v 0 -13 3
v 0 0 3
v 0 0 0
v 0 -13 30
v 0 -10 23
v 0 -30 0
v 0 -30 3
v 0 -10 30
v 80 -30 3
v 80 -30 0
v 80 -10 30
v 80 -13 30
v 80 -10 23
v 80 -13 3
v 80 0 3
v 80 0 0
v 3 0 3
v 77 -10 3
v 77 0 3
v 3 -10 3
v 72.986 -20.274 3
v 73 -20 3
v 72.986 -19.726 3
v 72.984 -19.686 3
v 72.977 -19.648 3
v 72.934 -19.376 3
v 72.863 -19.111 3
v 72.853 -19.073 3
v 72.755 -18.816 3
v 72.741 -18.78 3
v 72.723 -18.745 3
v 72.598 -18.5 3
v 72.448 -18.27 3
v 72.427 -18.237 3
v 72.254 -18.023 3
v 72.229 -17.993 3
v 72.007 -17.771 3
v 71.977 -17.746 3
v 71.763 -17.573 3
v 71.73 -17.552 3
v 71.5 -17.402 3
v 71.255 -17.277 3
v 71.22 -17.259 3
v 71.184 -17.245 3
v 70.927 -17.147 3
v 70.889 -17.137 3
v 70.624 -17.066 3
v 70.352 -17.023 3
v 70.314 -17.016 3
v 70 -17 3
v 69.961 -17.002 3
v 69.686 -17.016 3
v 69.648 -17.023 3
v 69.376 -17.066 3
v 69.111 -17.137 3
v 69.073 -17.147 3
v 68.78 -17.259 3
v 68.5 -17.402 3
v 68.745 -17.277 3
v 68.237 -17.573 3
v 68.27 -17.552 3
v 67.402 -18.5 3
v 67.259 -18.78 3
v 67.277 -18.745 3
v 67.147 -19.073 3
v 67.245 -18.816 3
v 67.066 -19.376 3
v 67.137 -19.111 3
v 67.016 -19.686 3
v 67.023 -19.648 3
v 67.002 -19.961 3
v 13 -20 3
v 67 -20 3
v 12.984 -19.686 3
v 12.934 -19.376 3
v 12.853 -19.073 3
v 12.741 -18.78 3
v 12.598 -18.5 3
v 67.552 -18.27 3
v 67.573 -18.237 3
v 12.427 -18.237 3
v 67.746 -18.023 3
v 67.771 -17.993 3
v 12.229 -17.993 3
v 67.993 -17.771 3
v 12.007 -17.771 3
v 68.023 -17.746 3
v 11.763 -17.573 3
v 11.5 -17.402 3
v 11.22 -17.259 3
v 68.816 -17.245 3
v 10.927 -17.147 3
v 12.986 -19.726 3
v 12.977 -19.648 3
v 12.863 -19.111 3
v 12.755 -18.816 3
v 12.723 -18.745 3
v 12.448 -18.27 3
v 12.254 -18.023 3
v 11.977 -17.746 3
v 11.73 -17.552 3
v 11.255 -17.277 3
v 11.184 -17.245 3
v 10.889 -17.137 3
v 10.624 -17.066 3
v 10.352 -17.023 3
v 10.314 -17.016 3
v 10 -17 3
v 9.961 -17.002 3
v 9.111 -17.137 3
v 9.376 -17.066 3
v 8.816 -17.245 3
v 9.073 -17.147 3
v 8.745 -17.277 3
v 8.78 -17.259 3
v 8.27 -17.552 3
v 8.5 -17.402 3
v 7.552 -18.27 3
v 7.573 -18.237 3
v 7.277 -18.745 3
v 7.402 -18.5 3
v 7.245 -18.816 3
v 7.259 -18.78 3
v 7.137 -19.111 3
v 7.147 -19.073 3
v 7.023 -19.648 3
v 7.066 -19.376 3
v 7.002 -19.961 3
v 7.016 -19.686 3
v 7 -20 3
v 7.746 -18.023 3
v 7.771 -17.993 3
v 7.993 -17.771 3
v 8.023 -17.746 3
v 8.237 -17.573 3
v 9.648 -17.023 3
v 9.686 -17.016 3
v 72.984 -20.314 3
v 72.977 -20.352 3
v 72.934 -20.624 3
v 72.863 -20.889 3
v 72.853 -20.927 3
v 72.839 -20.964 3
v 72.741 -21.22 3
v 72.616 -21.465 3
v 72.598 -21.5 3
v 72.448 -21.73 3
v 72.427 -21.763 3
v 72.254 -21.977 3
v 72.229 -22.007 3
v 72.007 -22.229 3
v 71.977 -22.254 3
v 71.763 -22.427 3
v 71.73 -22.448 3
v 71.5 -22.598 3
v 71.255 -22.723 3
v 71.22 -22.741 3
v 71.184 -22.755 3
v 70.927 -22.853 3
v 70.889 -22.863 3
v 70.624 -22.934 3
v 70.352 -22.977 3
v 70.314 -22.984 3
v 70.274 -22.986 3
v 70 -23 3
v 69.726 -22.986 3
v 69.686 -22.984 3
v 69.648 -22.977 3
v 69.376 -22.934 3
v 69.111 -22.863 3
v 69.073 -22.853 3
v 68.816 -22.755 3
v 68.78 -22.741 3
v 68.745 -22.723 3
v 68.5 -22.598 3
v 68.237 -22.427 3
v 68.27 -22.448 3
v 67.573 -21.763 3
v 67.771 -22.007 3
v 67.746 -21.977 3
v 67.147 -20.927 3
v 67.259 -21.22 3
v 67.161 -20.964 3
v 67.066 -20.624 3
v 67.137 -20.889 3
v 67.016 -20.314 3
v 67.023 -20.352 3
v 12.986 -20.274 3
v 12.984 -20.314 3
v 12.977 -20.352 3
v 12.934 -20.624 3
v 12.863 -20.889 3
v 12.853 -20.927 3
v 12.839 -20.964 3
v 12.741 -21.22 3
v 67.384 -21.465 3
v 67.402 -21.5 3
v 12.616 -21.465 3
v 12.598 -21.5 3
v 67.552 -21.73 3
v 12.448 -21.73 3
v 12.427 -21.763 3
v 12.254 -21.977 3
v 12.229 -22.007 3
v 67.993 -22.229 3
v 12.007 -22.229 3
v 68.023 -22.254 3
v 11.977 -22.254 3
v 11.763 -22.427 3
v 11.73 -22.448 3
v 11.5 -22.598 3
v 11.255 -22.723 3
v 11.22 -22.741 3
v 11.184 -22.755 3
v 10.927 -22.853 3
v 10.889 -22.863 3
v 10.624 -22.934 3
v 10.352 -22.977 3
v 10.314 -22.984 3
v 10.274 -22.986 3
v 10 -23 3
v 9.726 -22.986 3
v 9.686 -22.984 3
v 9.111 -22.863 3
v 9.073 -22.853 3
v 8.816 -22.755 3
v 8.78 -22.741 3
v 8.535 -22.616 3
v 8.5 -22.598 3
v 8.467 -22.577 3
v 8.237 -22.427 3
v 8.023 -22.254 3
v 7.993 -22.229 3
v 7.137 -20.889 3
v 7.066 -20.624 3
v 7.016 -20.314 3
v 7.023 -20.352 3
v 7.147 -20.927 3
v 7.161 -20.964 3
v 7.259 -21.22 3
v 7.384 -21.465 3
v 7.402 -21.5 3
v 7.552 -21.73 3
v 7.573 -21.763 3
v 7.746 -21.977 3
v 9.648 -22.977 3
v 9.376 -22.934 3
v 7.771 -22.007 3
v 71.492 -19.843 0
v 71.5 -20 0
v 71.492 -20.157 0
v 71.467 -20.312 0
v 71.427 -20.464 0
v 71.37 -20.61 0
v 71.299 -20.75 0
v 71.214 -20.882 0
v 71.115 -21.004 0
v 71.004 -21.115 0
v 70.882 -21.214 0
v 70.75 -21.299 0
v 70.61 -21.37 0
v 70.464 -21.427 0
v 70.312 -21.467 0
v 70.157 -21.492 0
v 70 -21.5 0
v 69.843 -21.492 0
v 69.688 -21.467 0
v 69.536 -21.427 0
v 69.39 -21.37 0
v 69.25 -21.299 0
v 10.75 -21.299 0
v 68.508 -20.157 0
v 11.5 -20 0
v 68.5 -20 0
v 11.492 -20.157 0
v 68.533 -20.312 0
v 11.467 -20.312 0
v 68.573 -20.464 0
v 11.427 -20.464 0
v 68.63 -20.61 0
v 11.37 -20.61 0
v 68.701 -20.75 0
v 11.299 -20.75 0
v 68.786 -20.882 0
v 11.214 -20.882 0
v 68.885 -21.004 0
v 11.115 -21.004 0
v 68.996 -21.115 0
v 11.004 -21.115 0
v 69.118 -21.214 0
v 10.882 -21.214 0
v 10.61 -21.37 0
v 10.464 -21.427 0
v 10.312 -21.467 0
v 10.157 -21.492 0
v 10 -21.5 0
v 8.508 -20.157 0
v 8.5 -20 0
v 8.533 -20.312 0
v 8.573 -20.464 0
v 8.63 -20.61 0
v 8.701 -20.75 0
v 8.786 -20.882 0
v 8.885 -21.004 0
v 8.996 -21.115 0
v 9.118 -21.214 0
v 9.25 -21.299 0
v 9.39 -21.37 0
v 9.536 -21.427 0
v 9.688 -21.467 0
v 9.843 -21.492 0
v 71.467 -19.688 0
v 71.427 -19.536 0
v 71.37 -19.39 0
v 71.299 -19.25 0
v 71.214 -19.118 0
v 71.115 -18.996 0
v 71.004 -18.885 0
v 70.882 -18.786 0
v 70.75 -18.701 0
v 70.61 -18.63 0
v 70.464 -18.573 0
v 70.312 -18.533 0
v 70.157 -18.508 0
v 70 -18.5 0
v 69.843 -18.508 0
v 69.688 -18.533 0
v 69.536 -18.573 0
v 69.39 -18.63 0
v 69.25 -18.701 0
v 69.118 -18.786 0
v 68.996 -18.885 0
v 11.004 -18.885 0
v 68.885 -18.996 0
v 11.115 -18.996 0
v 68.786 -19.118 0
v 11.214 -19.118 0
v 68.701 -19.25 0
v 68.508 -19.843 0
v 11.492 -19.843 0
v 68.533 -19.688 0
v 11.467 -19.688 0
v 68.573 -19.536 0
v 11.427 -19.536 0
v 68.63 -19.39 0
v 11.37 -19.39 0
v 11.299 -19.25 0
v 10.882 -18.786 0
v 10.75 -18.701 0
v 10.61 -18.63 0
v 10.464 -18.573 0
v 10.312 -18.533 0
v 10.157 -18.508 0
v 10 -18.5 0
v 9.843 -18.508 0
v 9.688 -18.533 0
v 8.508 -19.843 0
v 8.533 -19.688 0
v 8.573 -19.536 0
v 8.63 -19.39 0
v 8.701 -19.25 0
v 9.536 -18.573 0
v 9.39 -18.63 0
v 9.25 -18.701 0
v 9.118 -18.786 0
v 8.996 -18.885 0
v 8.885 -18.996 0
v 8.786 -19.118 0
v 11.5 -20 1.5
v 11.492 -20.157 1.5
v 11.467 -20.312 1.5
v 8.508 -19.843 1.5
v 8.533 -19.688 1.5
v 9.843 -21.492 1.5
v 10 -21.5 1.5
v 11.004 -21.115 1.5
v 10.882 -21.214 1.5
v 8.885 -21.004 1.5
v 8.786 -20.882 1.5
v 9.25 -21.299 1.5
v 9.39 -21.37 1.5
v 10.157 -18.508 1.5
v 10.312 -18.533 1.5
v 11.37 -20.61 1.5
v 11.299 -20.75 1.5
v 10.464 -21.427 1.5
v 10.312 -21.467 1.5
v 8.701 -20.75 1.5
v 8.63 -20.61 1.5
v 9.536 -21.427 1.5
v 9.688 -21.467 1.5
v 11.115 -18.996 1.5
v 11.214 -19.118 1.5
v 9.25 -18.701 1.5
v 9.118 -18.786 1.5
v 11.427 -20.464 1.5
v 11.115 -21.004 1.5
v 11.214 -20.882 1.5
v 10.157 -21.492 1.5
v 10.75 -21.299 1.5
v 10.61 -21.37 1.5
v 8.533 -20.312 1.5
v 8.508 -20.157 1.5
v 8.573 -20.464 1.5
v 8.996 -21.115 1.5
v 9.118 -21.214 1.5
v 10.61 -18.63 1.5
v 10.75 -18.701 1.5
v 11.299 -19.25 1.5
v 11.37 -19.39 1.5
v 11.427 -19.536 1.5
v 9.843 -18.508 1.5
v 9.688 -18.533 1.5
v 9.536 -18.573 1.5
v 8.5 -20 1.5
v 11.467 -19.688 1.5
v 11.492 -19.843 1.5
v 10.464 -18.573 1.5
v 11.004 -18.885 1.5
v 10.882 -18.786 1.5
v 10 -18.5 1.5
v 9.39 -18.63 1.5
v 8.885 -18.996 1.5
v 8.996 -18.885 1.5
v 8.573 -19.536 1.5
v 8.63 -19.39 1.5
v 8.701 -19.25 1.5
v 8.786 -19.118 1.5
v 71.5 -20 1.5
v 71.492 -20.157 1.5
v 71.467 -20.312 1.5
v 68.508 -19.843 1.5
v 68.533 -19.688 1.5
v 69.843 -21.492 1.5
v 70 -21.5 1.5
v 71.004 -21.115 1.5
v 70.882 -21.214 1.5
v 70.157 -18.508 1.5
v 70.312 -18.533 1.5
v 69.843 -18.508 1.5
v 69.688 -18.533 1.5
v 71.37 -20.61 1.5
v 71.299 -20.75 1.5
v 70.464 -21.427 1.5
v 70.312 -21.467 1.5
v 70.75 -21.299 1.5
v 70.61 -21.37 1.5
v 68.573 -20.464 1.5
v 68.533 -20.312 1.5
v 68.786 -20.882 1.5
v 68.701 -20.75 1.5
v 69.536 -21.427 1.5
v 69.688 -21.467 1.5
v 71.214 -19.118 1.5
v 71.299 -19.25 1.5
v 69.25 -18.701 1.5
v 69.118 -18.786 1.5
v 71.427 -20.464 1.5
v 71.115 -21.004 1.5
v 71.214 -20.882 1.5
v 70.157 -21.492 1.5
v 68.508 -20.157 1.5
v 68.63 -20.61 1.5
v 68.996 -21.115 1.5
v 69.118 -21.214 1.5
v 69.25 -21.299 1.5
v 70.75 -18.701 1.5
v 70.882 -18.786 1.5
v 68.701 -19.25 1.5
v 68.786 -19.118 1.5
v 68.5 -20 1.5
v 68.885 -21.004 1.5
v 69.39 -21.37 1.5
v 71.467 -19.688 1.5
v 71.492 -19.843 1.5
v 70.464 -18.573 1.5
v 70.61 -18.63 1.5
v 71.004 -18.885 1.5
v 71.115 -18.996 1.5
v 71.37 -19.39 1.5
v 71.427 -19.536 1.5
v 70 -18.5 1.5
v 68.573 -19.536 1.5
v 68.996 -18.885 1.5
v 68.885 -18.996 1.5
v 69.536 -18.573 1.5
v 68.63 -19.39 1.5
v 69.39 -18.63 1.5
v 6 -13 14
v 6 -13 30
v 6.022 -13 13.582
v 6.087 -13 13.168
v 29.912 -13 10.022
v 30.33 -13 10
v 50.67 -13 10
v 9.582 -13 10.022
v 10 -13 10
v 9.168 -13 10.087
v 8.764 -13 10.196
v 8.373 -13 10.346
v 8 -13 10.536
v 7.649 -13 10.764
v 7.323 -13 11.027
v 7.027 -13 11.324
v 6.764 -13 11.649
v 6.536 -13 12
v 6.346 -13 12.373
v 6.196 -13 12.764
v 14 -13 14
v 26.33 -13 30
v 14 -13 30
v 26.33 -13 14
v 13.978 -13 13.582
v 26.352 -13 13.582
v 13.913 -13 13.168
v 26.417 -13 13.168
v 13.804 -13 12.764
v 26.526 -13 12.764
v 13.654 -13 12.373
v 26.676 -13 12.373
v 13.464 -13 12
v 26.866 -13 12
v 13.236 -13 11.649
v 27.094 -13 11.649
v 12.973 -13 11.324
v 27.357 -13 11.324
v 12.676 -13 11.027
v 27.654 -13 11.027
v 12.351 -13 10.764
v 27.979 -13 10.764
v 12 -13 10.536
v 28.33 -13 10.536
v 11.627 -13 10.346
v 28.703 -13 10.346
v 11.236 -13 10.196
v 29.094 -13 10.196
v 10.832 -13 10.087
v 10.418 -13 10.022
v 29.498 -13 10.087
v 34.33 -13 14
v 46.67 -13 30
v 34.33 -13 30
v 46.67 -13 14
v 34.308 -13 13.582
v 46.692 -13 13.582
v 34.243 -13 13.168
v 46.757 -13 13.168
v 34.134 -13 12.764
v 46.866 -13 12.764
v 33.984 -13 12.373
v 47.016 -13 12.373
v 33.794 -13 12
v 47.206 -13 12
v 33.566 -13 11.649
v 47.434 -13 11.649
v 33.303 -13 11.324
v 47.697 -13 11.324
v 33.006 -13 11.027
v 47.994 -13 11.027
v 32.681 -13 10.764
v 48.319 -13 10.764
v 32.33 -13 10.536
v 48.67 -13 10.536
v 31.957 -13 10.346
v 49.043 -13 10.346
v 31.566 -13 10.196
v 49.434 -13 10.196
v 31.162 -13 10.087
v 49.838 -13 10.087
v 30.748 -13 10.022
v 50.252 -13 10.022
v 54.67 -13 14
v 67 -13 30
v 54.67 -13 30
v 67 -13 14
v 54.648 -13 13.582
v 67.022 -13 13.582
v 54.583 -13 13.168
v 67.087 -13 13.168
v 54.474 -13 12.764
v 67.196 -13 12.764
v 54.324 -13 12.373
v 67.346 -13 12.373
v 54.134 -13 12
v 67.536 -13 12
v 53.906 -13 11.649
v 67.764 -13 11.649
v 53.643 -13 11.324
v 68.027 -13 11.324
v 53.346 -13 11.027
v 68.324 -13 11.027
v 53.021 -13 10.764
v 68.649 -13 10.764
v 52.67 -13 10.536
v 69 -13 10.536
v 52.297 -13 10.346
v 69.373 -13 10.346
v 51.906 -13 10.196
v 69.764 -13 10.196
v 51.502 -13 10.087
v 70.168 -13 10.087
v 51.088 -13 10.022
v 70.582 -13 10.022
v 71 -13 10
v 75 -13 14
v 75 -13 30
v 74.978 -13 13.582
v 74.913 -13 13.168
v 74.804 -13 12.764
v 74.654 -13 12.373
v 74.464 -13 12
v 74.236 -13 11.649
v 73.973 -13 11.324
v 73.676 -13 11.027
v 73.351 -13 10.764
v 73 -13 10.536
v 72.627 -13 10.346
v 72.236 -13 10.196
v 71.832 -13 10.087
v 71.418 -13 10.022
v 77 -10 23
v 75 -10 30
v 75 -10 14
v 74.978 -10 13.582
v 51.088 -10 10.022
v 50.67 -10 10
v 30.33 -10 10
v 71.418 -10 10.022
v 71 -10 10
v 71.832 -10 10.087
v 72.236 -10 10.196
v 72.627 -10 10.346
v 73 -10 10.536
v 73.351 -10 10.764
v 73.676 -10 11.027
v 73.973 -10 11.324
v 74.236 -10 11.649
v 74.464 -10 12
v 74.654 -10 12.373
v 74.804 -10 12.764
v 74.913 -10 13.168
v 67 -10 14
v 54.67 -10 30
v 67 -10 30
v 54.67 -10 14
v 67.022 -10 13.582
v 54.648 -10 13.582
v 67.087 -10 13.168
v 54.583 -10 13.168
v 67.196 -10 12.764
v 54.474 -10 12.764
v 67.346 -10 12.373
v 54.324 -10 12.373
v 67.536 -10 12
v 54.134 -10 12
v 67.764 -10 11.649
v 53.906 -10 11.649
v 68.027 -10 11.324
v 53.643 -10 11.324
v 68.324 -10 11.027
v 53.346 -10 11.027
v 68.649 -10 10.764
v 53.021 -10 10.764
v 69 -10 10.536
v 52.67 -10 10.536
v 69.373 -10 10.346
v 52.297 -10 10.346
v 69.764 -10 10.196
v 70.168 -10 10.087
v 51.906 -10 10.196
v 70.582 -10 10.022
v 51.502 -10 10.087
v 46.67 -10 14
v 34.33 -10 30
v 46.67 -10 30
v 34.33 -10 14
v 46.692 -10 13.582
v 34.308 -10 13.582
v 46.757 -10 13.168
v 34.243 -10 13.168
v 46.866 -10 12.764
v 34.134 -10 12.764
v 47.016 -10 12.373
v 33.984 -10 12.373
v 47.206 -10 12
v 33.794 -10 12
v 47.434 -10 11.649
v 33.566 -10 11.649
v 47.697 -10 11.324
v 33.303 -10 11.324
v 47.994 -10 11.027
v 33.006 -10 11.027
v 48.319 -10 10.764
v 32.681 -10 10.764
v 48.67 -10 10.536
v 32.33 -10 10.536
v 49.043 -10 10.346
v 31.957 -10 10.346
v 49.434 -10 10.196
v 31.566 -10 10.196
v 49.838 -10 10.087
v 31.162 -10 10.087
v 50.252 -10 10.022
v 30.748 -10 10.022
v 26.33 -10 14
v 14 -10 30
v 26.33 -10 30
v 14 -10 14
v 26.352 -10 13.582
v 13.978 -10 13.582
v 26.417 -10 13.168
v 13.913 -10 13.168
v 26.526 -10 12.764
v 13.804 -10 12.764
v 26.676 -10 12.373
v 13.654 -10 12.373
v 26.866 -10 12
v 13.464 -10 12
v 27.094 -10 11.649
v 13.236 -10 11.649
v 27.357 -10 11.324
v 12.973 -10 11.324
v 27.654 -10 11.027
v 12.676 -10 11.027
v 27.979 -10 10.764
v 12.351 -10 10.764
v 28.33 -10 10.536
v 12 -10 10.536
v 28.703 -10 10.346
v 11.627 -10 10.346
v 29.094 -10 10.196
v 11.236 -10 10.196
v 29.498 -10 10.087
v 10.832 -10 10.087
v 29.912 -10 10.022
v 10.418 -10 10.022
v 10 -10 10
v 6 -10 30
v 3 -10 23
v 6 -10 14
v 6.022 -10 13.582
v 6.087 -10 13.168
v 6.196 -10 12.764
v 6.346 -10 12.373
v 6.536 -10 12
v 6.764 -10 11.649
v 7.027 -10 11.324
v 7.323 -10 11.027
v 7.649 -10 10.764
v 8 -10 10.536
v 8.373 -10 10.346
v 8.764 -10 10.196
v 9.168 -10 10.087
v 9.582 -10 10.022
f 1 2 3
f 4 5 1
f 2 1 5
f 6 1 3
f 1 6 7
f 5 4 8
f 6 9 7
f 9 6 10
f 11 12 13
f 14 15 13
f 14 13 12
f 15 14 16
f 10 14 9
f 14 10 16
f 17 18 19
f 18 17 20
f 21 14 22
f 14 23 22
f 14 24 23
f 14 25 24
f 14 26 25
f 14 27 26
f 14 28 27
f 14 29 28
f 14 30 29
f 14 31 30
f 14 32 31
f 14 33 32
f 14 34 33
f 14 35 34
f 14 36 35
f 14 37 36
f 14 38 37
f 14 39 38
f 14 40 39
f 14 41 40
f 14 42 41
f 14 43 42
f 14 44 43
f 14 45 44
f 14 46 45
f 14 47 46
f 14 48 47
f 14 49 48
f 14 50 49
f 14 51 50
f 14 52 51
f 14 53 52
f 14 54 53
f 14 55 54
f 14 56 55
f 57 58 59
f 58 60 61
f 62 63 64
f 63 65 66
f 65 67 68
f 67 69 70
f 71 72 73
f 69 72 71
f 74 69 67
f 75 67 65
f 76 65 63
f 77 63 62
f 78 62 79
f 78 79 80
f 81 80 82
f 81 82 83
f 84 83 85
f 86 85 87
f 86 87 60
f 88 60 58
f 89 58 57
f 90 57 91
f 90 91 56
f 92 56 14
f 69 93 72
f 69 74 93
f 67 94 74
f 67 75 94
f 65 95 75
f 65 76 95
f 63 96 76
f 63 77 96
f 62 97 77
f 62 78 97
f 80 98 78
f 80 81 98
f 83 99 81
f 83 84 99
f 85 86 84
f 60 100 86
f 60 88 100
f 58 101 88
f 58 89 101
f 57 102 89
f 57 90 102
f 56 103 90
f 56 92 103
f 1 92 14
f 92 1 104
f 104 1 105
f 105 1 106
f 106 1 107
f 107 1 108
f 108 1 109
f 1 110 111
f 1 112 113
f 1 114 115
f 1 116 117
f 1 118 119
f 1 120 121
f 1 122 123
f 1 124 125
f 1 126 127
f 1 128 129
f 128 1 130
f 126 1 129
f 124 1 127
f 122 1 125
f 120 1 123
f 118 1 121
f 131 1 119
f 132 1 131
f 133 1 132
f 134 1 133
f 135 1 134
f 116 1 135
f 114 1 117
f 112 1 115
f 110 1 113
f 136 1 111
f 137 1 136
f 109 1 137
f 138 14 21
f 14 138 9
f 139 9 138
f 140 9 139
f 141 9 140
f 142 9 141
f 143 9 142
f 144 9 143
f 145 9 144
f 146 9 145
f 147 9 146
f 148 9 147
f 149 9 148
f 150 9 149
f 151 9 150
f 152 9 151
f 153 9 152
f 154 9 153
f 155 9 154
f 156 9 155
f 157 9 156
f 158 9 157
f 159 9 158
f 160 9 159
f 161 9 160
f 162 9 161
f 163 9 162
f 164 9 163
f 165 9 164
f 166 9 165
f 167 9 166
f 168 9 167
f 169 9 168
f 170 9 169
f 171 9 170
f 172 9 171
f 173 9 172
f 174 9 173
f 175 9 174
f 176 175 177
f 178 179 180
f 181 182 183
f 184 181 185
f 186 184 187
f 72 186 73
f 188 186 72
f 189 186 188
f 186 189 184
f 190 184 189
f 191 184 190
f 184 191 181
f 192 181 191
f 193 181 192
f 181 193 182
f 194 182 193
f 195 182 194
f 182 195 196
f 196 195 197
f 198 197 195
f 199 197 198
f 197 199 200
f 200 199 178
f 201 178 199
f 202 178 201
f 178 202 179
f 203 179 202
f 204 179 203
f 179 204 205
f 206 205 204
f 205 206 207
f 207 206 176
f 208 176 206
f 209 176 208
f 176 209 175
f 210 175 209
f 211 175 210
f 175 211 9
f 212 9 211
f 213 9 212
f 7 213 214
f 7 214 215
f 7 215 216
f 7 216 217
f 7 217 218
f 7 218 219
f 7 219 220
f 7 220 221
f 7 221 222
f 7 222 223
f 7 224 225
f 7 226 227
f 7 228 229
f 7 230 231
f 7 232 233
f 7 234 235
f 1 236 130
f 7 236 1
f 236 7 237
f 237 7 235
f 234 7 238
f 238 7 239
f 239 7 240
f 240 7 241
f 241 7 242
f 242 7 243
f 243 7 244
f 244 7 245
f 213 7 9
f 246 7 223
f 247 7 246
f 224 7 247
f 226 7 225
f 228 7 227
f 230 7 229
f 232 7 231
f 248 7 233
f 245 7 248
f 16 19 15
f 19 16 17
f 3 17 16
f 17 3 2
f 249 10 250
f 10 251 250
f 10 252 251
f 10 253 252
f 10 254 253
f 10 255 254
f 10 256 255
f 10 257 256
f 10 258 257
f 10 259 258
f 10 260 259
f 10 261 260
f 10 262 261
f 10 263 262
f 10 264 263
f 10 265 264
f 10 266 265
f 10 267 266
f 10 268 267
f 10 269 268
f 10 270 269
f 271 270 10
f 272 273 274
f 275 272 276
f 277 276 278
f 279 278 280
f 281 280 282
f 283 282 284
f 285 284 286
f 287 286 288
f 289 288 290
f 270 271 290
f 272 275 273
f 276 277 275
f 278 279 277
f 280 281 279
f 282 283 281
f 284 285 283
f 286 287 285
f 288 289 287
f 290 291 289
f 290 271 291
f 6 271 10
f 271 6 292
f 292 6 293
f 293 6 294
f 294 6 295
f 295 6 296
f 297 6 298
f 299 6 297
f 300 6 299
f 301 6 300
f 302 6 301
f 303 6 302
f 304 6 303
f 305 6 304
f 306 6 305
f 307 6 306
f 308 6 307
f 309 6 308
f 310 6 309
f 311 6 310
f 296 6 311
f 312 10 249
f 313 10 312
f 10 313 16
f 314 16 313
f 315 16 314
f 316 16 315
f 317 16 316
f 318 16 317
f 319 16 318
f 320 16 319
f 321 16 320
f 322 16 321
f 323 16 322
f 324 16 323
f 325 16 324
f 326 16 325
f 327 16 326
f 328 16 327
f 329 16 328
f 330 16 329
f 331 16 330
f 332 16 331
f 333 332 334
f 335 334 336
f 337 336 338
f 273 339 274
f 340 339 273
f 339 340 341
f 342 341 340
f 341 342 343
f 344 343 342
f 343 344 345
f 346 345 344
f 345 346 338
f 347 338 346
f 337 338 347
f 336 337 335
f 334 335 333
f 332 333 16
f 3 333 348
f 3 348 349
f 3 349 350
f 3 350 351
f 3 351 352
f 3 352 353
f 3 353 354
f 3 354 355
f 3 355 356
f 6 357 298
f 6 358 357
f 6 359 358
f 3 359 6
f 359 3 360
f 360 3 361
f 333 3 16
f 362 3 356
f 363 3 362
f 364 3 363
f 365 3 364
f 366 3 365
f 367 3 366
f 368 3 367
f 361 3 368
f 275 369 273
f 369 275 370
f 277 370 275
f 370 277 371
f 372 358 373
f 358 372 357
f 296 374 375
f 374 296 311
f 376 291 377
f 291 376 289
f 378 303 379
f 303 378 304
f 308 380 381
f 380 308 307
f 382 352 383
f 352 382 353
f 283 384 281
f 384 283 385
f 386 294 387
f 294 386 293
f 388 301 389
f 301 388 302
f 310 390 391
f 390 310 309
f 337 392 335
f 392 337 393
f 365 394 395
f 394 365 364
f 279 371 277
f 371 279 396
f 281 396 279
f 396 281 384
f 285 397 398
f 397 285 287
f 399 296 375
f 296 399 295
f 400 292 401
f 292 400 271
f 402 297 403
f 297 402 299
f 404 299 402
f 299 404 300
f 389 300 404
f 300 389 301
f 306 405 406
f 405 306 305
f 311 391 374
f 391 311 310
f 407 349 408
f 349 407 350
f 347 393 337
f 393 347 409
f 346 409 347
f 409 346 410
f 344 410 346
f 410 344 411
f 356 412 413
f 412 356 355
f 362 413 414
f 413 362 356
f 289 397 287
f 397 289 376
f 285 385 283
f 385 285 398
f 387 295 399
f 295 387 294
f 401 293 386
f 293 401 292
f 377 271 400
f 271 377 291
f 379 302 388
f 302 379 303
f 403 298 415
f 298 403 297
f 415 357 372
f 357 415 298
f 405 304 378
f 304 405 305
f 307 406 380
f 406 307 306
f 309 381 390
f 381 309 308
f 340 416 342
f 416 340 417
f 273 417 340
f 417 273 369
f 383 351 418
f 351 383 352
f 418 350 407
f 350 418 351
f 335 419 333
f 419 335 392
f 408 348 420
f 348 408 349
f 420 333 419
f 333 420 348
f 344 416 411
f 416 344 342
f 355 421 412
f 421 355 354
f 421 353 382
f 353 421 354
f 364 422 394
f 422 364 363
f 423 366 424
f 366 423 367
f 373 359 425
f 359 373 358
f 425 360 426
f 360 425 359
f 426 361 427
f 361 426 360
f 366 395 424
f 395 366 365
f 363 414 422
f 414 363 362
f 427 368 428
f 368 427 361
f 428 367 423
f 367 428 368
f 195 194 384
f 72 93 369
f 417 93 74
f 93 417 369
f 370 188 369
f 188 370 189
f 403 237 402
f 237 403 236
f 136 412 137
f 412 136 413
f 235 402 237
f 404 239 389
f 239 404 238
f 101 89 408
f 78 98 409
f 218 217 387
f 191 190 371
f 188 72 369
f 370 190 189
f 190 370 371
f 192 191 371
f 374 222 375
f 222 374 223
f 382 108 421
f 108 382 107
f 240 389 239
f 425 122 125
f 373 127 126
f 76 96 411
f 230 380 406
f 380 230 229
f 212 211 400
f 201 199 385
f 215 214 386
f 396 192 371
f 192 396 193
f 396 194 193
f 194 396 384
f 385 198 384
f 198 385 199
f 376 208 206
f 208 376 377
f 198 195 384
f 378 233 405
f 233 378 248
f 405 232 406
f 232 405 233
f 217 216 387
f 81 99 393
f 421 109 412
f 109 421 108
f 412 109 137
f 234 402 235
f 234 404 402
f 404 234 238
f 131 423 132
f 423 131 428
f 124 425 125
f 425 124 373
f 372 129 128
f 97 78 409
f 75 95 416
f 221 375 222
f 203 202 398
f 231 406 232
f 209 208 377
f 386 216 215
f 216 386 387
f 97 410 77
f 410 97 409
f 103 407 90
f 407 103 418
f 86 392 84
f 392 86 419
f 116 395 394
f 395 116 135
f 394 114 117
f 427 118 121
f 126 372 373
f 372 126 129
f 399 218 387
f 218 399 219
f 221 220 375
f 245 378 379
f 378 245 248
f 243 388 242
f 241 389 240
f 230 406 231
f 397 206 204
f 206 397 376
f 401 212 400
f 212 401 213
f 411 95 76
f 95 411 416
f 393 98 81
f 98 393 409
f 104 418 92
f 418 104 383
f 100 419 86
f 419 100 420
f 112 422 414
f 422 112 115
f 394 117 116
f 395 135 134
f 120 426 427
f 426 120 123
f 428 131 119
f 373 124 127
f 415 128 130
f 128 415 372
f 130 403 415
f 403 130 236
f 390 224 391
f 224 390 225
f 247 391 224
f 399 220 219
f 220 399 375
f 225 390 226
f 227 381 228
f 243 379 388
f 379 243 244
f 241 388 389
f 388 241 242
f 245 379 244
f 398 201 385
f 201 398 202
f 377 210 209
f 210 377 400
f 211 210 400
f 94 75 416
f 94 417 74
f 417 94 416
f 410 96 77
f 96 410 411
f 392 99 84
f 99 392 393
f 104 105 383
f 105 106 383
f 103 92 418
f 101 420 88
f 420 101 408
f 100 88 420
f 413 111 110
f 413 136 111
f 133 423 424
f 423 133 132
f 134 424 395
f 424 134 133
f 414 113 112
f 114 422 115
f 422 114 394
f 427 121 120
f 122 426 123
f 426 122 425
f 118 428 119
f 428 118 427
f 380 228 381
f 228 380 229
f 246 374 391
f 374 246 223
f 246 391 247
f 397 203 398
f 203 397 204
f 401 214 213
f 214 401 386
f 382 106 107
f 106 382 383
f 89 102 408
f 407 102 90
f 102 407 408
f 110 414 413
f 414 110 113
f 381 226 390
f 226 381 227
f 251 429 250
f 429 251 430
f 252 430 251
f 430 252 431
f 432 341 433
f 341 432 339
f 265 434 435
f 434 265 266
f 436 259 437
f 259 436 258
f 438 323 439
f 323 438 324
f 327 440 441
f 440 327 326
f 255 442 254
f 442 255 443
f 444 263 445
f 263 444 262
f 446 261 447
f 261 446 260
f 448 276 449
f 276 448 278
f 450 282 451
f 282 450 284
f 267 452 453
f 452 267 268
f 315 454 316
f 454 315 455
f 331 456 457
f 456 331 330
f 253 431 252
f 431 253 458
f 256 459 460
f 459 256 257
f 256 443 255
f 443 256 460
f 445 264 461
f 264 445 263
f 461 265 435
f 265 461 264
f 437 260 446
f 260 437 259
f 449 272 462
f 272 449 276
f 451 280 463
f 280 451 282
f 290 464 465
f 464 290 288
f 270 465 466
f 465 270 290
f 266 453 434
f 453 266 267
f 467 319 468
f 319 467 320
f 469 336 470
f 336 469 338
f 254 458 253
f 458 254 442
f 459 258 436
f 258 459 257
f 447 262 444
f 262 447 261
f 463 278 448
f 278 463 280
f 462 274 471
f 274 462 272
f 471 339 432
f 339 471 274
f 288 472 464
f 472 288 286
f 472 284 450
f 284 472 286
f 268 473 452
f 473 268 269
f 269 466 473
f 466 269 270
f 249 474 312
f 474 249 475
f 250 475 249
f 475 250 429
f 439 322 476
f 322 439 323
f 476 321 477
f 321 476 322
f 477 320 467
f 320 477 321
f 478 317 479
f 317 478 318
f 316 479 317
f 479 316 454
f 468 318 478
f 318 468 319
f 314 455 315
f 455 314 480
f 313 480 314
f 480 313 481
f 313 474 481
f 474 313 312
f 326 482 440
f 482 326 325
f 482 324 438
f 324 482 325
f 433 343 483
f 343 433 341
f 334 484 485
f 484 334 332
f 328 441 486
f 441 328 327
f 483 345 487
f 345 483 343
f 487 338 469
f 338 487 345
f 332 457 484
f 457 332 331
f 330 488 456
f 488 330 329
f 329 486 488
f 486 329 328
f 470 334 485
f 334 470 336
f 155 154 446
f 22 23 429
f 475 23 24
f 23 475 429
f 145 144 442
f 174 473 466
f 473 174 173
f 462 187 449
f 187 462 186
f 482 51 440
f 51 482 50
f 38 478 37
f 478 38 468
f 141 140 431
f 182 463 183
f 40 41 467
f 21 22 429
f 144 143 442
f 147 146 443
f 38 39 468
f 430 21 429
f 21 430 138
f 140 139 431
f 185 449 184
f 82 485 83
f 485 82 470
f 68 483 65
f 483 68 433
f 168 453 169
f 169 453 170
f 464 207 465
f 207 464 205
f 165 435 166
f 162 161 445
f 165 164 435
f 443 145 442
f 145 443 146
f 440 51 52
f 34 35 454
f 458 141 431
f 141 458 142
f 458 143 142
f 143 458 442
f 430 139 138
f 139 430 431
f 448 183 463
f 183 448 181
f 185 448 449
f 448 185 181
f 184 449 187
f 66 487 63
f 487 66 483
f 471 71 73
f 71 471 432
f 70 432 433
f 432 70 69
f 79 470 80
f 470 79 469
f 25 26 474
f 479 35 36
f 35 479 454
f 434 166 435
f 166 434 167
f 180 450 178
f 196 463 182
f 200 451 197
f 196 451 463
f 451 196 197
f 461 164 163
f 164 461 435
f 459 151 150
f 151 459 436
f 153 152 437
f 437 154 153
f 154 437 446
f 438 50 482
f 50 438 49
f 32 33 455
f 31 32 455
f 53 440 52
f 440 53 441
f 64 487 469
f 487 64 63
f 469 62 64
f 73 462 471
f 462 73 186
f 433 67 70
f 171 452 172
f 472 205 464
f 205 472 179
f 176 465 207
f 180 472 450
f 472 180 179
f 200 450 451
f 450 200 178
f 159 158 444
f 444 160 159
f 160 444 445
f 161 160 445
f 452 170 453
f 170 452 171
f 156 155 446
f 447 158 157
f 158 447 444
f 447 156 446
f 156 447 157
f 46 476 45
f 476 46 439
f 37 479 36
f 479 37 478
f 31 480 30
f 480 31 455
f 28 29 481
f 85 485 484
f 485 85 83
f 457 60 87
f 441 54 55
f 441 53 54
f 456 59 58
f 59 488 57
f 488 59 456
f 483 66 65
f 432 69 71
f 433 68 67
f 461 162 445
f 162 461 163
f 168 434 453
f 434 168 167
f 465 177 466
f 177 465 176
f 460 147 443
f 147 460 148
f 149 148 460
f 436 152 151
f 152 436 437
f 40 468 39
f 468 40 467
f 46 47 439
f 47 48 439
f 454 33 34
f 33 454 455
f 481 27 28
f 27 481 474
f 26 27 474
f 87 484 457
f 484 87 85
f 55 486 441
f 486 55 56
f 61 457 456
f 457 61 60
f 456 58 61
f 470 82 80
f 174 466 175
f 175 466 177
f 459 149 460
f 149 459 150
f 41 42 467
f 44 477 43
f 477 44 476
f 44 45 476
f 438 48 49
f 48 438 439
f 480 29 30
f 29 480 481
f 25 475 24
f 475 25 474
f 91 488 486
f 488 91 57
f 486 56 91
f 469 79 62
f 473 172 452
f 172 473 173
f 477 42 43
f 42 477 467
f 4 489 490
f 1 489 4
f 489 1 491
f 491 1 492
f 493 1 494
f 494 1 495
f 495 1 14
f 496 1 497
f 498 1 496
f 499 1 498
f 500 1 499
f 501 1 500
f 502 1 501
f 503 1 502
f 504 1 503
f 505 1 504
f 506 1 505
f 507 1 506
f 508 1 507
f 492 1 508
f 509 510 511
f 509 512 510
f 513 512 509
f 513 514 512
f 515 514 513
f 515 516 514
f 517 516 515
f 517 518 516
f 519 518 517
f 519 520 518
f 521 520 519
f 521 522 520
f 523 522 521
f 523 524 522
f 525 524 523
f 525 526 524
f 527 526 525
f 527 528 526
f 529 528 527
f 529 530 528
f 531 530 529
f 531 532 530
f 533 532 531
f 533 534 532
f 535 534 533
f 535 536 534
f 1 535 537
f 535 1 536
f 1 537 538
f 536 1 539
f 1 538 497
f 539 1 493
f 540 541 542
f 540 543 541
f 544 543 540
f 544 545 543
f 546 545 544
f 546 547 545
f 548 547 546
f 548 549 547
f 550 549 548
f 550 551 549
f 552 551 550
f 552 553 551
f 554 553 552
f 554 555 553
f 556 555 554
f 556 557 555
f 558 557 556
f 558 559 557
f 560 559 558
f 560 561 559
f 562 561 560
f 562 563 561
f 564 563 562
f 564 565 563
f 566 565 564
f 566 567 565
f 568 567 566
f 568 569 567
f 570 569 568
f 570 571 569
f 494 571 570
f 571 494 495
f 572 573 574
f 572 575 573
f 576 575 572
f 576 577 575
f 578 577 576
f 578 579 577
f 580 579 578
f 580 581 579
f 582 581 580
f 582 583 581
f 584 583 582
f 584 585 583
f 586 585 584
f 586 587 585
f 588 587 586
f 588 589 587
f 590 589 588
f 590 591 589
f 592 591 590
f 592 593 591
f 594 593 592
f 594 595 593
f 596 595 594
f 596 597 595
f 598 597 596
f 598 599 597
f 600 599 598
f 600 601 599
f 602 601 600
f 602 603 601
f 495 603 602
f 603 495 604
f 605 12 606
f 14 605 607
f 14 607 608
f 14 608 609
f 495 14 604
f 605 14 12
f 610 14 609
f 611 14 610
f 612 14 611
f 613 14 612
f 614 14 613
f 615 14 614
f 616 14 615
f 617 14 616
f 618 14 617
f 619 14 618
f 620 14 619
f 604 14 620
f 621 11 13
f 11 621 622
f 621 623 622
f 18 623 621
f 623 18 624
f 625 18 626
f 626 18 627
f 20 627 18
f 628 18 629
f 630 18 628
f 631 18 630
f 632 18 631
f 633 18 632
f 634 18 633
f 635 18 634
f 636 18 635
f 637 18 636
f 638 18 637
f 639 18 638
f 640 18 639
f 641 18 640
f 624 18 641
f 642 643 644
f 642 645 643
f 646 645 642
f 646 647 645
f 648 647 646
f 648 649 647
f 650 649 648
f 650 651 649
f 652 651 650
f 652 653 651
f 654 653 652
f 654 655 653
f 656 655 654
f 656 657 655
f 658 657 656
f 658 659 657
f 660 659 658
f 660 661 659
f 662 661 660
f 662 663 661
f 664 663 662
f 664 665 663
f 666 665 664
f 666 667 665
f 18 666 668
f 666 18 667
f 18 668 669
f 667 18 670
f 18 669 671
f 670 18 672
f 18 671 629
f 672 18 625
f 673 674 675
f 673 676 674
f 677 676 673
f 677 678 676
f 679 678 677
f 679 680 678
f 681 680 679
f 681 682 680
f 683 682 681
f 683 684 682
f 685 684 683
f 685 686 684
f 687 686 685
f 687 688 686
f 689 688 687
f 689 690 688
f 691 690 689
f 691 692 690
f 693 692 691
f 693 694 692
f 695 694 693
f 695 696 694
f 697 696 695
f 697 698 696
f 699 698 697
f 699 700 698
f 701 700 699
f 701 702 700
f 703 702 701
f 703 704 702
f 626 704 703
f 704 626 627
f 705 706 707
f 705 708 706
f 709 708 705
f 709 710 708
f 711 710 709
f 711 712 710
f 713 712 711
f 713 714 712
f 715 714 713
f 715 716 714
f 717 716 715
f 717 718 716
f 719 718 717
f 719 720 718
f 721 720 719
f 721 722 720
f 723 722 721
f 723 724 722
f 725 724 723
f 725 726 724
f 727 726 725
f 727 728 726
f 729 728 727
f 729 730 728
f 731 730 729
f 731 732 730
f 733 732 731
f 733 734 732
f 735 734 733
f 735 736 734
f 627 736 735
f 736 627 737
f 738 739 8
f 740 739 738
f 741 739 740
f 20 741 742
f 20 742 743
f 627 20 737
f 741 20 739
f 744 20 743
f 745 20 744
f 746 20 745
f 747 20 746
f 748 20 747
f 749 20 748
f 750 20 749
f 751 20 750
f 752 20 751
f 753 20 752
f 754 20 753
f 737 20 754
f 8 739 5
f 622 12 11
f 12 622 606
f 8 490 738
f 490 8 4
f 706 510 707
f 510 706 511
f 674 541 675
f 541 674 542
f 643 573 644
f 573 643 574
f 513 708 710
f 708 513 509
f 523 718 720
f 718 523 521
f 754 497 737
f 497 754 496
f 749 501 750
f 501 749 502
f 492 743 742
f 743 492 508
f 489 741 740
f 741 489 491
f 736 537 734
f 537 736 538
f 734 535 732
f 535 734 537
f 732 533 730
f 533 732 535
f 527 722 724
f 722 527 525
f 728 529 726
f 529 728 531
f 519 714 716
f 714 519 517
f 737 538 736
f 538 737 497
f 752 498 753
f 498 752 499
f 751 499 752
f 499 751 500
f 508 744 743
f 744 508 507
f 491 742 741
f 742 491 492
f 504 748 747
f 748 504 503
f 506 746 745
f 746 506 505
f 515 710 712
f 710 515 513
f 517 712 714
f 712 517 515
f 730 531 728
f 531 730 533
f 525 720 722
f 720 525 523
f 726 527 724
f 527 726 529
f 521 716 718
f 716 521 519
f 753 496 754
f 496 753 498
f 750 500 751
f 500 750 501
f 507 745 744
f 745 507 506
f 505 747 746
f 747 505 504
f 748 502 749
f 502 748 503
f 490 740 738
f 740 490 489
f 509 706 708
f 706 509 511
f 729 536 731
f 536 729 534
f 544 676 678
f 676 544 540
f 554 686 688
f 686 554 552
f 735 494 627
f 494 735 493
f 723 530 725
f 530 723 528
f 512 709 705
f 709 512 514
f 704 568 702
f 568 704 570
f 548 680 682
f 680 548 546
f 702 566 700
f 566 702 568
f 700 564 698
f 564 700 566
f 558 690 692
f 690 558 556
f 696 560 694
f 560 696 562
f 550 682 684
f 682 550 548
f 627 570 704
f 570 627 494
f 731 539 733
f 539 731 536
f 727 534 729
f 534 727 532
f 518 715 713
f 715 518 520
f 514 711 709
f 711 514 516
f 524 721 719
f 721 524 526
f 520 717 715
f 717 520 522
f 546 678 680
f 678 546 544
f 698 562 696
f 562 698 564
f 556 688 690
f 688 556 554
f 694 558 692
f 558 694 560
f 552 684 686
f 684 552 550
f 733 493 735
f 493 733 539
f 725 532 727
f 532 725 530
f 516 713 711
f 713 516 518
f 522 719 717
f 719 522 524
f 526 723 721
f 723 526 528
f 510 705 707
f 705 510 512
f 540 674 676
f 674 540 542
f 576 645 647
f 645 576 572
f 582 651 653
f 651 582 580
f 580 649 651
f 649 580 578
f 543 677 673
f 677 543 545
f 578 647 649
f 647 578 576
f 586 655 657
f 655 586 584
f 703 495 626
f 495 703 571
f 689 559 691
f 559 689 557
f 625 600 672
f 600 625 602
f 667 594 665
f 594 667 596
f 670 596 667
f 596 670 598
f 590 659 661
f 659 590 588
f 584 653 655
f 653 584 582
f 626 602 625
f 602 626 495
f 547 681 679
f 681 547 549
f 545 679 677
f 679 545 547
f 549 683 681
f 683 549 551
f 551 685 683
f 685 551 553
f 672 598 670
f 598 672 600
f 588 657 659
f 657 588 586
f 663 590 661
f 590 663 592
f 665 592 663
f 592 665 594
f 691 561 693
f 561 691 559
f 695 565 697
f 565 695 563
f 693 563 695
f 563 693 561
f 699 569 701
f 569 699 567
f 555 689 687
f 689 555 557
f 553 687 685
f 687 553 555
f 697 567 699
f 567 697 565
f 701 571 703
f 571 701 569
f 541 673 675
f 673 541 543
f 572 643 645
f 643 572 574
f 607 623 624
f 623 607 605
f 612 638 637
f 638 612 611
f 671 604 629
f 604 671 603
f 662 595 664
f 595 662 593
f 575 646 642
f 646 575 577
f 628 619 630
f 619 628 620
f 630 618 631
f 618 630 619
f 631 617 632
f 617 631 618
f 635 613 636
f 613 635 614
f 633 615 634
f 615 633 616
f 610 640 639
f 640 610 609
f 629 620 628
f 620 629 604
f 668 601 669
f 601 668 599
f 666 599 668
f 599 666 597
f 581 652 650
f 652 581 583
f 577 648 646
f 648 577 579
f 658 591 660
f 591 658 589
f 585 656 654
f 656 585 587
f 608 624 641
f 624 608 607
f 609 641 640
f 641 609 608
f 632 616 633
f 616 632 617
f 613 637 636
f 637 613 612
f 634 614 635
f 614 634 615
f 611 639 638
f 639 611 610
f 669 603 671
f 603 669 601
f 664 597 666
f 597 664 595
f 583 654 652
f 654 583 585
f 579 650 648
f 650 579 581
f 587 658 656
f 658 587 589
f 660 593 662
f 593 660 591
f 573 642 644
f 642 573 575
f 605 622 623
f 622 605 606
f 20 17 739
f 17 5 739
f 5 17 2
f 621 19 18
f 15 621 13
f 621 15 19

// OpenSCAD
$fn = 60;

rotate([90, 0, 0]) {
 difference () {
   cube([80, 3, 30]);
   translate([10, 4, 20]) rotate([90, 0, 0]) cylinder(5, r=1.5);
   translate([10, 1.5, 20]) rotate([-90, 0, 0]) cylinder(2, r1=1.5, r2=3.5);
   translate([70, 4, 20]) rotate([90, 0, 0]) cylinder(5, r=1.5);
   translate([70, 1.5, 20]) rotate([-90, 0, 0]) cylinder(2, r1=1.5, r2=3.5);
 

 
   }
 
difference () {
  translate([0, 0, 10]) cube([80, 30, 3]);
  
  translate([10, 14, 9]) cylinder(5, r=4);
  translate([6, 14, 9]) cube([8, 16, 5]);

  translate([30.33, 14, 9]) cylinder(5, r=4);
  translate([26.33,  14, 9]) cube([8, 16, 5]);

  translate([50.67, 14, 9]) cylinder(5, r=4);
  translate([46.67, 14, 9]) cube([8, 16, 5]);

  translate([71, 14, 9]) cylinder(5, r=4);
  translate([67, 14, 9]) cube([8, 16, 5]);

}
translate([3, 3, 0]) rotate([0, -90, 0]) {
linear_extrude(height=3) {
polygon([[0, 0], [10, 0], [10, 20]]);
}
}

translate([80, 3, 0]) rotate([0, -90, 0]) {
linear_extrude(height=3) {
polygon([[0, 0], [10, 0], [10, 20]]);
}
}

}
